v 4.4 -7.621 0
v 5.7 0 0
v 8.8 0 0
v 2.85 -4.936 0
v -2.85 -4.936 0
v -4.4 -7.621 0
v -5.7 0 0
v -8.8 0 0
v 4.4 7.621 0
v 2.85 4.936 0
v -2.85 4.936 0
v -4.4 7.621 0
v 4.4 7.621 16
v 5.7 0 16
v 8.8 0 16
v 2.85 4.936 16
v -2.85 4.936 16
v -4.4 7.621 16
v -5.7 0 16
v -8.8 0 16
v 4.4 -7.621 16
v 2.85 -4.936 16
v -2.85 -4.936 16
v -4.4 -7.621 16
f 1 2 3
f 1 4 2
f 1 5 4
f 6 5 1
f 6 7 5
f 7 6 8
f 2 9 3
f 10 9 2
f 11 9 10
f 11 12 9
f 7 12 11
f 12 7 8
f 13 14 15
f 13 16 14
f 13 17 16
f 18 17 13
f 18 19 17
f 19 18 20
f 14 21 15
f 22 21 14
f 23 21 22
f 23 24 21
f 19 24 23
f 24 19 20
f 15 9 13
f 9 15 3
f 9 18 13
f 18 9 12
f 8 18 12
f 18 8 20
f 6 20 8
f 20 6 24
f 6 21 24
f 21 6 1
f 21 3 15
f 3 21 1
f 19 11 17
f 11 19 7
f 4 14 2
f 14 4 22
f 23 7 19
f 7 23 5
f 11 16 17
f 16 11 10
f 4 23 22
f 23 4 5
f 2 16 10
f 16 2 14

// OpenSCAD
outer_r = 8.80;
inner_r = 5.70;
hole_r = 3.20;

h = 16.00;

base_h = 0.00;

difference() {
    linear_extrude(h)
        difference() {
            circle(r = outer_r, $fn = 6);
            circle(r = hole_r, $fn = 64);
        }
    
    translate([0, 0, base_h])
        linear_extrude(h - base_h)
                circle(r = inner_r, $fn = 6);                
}
